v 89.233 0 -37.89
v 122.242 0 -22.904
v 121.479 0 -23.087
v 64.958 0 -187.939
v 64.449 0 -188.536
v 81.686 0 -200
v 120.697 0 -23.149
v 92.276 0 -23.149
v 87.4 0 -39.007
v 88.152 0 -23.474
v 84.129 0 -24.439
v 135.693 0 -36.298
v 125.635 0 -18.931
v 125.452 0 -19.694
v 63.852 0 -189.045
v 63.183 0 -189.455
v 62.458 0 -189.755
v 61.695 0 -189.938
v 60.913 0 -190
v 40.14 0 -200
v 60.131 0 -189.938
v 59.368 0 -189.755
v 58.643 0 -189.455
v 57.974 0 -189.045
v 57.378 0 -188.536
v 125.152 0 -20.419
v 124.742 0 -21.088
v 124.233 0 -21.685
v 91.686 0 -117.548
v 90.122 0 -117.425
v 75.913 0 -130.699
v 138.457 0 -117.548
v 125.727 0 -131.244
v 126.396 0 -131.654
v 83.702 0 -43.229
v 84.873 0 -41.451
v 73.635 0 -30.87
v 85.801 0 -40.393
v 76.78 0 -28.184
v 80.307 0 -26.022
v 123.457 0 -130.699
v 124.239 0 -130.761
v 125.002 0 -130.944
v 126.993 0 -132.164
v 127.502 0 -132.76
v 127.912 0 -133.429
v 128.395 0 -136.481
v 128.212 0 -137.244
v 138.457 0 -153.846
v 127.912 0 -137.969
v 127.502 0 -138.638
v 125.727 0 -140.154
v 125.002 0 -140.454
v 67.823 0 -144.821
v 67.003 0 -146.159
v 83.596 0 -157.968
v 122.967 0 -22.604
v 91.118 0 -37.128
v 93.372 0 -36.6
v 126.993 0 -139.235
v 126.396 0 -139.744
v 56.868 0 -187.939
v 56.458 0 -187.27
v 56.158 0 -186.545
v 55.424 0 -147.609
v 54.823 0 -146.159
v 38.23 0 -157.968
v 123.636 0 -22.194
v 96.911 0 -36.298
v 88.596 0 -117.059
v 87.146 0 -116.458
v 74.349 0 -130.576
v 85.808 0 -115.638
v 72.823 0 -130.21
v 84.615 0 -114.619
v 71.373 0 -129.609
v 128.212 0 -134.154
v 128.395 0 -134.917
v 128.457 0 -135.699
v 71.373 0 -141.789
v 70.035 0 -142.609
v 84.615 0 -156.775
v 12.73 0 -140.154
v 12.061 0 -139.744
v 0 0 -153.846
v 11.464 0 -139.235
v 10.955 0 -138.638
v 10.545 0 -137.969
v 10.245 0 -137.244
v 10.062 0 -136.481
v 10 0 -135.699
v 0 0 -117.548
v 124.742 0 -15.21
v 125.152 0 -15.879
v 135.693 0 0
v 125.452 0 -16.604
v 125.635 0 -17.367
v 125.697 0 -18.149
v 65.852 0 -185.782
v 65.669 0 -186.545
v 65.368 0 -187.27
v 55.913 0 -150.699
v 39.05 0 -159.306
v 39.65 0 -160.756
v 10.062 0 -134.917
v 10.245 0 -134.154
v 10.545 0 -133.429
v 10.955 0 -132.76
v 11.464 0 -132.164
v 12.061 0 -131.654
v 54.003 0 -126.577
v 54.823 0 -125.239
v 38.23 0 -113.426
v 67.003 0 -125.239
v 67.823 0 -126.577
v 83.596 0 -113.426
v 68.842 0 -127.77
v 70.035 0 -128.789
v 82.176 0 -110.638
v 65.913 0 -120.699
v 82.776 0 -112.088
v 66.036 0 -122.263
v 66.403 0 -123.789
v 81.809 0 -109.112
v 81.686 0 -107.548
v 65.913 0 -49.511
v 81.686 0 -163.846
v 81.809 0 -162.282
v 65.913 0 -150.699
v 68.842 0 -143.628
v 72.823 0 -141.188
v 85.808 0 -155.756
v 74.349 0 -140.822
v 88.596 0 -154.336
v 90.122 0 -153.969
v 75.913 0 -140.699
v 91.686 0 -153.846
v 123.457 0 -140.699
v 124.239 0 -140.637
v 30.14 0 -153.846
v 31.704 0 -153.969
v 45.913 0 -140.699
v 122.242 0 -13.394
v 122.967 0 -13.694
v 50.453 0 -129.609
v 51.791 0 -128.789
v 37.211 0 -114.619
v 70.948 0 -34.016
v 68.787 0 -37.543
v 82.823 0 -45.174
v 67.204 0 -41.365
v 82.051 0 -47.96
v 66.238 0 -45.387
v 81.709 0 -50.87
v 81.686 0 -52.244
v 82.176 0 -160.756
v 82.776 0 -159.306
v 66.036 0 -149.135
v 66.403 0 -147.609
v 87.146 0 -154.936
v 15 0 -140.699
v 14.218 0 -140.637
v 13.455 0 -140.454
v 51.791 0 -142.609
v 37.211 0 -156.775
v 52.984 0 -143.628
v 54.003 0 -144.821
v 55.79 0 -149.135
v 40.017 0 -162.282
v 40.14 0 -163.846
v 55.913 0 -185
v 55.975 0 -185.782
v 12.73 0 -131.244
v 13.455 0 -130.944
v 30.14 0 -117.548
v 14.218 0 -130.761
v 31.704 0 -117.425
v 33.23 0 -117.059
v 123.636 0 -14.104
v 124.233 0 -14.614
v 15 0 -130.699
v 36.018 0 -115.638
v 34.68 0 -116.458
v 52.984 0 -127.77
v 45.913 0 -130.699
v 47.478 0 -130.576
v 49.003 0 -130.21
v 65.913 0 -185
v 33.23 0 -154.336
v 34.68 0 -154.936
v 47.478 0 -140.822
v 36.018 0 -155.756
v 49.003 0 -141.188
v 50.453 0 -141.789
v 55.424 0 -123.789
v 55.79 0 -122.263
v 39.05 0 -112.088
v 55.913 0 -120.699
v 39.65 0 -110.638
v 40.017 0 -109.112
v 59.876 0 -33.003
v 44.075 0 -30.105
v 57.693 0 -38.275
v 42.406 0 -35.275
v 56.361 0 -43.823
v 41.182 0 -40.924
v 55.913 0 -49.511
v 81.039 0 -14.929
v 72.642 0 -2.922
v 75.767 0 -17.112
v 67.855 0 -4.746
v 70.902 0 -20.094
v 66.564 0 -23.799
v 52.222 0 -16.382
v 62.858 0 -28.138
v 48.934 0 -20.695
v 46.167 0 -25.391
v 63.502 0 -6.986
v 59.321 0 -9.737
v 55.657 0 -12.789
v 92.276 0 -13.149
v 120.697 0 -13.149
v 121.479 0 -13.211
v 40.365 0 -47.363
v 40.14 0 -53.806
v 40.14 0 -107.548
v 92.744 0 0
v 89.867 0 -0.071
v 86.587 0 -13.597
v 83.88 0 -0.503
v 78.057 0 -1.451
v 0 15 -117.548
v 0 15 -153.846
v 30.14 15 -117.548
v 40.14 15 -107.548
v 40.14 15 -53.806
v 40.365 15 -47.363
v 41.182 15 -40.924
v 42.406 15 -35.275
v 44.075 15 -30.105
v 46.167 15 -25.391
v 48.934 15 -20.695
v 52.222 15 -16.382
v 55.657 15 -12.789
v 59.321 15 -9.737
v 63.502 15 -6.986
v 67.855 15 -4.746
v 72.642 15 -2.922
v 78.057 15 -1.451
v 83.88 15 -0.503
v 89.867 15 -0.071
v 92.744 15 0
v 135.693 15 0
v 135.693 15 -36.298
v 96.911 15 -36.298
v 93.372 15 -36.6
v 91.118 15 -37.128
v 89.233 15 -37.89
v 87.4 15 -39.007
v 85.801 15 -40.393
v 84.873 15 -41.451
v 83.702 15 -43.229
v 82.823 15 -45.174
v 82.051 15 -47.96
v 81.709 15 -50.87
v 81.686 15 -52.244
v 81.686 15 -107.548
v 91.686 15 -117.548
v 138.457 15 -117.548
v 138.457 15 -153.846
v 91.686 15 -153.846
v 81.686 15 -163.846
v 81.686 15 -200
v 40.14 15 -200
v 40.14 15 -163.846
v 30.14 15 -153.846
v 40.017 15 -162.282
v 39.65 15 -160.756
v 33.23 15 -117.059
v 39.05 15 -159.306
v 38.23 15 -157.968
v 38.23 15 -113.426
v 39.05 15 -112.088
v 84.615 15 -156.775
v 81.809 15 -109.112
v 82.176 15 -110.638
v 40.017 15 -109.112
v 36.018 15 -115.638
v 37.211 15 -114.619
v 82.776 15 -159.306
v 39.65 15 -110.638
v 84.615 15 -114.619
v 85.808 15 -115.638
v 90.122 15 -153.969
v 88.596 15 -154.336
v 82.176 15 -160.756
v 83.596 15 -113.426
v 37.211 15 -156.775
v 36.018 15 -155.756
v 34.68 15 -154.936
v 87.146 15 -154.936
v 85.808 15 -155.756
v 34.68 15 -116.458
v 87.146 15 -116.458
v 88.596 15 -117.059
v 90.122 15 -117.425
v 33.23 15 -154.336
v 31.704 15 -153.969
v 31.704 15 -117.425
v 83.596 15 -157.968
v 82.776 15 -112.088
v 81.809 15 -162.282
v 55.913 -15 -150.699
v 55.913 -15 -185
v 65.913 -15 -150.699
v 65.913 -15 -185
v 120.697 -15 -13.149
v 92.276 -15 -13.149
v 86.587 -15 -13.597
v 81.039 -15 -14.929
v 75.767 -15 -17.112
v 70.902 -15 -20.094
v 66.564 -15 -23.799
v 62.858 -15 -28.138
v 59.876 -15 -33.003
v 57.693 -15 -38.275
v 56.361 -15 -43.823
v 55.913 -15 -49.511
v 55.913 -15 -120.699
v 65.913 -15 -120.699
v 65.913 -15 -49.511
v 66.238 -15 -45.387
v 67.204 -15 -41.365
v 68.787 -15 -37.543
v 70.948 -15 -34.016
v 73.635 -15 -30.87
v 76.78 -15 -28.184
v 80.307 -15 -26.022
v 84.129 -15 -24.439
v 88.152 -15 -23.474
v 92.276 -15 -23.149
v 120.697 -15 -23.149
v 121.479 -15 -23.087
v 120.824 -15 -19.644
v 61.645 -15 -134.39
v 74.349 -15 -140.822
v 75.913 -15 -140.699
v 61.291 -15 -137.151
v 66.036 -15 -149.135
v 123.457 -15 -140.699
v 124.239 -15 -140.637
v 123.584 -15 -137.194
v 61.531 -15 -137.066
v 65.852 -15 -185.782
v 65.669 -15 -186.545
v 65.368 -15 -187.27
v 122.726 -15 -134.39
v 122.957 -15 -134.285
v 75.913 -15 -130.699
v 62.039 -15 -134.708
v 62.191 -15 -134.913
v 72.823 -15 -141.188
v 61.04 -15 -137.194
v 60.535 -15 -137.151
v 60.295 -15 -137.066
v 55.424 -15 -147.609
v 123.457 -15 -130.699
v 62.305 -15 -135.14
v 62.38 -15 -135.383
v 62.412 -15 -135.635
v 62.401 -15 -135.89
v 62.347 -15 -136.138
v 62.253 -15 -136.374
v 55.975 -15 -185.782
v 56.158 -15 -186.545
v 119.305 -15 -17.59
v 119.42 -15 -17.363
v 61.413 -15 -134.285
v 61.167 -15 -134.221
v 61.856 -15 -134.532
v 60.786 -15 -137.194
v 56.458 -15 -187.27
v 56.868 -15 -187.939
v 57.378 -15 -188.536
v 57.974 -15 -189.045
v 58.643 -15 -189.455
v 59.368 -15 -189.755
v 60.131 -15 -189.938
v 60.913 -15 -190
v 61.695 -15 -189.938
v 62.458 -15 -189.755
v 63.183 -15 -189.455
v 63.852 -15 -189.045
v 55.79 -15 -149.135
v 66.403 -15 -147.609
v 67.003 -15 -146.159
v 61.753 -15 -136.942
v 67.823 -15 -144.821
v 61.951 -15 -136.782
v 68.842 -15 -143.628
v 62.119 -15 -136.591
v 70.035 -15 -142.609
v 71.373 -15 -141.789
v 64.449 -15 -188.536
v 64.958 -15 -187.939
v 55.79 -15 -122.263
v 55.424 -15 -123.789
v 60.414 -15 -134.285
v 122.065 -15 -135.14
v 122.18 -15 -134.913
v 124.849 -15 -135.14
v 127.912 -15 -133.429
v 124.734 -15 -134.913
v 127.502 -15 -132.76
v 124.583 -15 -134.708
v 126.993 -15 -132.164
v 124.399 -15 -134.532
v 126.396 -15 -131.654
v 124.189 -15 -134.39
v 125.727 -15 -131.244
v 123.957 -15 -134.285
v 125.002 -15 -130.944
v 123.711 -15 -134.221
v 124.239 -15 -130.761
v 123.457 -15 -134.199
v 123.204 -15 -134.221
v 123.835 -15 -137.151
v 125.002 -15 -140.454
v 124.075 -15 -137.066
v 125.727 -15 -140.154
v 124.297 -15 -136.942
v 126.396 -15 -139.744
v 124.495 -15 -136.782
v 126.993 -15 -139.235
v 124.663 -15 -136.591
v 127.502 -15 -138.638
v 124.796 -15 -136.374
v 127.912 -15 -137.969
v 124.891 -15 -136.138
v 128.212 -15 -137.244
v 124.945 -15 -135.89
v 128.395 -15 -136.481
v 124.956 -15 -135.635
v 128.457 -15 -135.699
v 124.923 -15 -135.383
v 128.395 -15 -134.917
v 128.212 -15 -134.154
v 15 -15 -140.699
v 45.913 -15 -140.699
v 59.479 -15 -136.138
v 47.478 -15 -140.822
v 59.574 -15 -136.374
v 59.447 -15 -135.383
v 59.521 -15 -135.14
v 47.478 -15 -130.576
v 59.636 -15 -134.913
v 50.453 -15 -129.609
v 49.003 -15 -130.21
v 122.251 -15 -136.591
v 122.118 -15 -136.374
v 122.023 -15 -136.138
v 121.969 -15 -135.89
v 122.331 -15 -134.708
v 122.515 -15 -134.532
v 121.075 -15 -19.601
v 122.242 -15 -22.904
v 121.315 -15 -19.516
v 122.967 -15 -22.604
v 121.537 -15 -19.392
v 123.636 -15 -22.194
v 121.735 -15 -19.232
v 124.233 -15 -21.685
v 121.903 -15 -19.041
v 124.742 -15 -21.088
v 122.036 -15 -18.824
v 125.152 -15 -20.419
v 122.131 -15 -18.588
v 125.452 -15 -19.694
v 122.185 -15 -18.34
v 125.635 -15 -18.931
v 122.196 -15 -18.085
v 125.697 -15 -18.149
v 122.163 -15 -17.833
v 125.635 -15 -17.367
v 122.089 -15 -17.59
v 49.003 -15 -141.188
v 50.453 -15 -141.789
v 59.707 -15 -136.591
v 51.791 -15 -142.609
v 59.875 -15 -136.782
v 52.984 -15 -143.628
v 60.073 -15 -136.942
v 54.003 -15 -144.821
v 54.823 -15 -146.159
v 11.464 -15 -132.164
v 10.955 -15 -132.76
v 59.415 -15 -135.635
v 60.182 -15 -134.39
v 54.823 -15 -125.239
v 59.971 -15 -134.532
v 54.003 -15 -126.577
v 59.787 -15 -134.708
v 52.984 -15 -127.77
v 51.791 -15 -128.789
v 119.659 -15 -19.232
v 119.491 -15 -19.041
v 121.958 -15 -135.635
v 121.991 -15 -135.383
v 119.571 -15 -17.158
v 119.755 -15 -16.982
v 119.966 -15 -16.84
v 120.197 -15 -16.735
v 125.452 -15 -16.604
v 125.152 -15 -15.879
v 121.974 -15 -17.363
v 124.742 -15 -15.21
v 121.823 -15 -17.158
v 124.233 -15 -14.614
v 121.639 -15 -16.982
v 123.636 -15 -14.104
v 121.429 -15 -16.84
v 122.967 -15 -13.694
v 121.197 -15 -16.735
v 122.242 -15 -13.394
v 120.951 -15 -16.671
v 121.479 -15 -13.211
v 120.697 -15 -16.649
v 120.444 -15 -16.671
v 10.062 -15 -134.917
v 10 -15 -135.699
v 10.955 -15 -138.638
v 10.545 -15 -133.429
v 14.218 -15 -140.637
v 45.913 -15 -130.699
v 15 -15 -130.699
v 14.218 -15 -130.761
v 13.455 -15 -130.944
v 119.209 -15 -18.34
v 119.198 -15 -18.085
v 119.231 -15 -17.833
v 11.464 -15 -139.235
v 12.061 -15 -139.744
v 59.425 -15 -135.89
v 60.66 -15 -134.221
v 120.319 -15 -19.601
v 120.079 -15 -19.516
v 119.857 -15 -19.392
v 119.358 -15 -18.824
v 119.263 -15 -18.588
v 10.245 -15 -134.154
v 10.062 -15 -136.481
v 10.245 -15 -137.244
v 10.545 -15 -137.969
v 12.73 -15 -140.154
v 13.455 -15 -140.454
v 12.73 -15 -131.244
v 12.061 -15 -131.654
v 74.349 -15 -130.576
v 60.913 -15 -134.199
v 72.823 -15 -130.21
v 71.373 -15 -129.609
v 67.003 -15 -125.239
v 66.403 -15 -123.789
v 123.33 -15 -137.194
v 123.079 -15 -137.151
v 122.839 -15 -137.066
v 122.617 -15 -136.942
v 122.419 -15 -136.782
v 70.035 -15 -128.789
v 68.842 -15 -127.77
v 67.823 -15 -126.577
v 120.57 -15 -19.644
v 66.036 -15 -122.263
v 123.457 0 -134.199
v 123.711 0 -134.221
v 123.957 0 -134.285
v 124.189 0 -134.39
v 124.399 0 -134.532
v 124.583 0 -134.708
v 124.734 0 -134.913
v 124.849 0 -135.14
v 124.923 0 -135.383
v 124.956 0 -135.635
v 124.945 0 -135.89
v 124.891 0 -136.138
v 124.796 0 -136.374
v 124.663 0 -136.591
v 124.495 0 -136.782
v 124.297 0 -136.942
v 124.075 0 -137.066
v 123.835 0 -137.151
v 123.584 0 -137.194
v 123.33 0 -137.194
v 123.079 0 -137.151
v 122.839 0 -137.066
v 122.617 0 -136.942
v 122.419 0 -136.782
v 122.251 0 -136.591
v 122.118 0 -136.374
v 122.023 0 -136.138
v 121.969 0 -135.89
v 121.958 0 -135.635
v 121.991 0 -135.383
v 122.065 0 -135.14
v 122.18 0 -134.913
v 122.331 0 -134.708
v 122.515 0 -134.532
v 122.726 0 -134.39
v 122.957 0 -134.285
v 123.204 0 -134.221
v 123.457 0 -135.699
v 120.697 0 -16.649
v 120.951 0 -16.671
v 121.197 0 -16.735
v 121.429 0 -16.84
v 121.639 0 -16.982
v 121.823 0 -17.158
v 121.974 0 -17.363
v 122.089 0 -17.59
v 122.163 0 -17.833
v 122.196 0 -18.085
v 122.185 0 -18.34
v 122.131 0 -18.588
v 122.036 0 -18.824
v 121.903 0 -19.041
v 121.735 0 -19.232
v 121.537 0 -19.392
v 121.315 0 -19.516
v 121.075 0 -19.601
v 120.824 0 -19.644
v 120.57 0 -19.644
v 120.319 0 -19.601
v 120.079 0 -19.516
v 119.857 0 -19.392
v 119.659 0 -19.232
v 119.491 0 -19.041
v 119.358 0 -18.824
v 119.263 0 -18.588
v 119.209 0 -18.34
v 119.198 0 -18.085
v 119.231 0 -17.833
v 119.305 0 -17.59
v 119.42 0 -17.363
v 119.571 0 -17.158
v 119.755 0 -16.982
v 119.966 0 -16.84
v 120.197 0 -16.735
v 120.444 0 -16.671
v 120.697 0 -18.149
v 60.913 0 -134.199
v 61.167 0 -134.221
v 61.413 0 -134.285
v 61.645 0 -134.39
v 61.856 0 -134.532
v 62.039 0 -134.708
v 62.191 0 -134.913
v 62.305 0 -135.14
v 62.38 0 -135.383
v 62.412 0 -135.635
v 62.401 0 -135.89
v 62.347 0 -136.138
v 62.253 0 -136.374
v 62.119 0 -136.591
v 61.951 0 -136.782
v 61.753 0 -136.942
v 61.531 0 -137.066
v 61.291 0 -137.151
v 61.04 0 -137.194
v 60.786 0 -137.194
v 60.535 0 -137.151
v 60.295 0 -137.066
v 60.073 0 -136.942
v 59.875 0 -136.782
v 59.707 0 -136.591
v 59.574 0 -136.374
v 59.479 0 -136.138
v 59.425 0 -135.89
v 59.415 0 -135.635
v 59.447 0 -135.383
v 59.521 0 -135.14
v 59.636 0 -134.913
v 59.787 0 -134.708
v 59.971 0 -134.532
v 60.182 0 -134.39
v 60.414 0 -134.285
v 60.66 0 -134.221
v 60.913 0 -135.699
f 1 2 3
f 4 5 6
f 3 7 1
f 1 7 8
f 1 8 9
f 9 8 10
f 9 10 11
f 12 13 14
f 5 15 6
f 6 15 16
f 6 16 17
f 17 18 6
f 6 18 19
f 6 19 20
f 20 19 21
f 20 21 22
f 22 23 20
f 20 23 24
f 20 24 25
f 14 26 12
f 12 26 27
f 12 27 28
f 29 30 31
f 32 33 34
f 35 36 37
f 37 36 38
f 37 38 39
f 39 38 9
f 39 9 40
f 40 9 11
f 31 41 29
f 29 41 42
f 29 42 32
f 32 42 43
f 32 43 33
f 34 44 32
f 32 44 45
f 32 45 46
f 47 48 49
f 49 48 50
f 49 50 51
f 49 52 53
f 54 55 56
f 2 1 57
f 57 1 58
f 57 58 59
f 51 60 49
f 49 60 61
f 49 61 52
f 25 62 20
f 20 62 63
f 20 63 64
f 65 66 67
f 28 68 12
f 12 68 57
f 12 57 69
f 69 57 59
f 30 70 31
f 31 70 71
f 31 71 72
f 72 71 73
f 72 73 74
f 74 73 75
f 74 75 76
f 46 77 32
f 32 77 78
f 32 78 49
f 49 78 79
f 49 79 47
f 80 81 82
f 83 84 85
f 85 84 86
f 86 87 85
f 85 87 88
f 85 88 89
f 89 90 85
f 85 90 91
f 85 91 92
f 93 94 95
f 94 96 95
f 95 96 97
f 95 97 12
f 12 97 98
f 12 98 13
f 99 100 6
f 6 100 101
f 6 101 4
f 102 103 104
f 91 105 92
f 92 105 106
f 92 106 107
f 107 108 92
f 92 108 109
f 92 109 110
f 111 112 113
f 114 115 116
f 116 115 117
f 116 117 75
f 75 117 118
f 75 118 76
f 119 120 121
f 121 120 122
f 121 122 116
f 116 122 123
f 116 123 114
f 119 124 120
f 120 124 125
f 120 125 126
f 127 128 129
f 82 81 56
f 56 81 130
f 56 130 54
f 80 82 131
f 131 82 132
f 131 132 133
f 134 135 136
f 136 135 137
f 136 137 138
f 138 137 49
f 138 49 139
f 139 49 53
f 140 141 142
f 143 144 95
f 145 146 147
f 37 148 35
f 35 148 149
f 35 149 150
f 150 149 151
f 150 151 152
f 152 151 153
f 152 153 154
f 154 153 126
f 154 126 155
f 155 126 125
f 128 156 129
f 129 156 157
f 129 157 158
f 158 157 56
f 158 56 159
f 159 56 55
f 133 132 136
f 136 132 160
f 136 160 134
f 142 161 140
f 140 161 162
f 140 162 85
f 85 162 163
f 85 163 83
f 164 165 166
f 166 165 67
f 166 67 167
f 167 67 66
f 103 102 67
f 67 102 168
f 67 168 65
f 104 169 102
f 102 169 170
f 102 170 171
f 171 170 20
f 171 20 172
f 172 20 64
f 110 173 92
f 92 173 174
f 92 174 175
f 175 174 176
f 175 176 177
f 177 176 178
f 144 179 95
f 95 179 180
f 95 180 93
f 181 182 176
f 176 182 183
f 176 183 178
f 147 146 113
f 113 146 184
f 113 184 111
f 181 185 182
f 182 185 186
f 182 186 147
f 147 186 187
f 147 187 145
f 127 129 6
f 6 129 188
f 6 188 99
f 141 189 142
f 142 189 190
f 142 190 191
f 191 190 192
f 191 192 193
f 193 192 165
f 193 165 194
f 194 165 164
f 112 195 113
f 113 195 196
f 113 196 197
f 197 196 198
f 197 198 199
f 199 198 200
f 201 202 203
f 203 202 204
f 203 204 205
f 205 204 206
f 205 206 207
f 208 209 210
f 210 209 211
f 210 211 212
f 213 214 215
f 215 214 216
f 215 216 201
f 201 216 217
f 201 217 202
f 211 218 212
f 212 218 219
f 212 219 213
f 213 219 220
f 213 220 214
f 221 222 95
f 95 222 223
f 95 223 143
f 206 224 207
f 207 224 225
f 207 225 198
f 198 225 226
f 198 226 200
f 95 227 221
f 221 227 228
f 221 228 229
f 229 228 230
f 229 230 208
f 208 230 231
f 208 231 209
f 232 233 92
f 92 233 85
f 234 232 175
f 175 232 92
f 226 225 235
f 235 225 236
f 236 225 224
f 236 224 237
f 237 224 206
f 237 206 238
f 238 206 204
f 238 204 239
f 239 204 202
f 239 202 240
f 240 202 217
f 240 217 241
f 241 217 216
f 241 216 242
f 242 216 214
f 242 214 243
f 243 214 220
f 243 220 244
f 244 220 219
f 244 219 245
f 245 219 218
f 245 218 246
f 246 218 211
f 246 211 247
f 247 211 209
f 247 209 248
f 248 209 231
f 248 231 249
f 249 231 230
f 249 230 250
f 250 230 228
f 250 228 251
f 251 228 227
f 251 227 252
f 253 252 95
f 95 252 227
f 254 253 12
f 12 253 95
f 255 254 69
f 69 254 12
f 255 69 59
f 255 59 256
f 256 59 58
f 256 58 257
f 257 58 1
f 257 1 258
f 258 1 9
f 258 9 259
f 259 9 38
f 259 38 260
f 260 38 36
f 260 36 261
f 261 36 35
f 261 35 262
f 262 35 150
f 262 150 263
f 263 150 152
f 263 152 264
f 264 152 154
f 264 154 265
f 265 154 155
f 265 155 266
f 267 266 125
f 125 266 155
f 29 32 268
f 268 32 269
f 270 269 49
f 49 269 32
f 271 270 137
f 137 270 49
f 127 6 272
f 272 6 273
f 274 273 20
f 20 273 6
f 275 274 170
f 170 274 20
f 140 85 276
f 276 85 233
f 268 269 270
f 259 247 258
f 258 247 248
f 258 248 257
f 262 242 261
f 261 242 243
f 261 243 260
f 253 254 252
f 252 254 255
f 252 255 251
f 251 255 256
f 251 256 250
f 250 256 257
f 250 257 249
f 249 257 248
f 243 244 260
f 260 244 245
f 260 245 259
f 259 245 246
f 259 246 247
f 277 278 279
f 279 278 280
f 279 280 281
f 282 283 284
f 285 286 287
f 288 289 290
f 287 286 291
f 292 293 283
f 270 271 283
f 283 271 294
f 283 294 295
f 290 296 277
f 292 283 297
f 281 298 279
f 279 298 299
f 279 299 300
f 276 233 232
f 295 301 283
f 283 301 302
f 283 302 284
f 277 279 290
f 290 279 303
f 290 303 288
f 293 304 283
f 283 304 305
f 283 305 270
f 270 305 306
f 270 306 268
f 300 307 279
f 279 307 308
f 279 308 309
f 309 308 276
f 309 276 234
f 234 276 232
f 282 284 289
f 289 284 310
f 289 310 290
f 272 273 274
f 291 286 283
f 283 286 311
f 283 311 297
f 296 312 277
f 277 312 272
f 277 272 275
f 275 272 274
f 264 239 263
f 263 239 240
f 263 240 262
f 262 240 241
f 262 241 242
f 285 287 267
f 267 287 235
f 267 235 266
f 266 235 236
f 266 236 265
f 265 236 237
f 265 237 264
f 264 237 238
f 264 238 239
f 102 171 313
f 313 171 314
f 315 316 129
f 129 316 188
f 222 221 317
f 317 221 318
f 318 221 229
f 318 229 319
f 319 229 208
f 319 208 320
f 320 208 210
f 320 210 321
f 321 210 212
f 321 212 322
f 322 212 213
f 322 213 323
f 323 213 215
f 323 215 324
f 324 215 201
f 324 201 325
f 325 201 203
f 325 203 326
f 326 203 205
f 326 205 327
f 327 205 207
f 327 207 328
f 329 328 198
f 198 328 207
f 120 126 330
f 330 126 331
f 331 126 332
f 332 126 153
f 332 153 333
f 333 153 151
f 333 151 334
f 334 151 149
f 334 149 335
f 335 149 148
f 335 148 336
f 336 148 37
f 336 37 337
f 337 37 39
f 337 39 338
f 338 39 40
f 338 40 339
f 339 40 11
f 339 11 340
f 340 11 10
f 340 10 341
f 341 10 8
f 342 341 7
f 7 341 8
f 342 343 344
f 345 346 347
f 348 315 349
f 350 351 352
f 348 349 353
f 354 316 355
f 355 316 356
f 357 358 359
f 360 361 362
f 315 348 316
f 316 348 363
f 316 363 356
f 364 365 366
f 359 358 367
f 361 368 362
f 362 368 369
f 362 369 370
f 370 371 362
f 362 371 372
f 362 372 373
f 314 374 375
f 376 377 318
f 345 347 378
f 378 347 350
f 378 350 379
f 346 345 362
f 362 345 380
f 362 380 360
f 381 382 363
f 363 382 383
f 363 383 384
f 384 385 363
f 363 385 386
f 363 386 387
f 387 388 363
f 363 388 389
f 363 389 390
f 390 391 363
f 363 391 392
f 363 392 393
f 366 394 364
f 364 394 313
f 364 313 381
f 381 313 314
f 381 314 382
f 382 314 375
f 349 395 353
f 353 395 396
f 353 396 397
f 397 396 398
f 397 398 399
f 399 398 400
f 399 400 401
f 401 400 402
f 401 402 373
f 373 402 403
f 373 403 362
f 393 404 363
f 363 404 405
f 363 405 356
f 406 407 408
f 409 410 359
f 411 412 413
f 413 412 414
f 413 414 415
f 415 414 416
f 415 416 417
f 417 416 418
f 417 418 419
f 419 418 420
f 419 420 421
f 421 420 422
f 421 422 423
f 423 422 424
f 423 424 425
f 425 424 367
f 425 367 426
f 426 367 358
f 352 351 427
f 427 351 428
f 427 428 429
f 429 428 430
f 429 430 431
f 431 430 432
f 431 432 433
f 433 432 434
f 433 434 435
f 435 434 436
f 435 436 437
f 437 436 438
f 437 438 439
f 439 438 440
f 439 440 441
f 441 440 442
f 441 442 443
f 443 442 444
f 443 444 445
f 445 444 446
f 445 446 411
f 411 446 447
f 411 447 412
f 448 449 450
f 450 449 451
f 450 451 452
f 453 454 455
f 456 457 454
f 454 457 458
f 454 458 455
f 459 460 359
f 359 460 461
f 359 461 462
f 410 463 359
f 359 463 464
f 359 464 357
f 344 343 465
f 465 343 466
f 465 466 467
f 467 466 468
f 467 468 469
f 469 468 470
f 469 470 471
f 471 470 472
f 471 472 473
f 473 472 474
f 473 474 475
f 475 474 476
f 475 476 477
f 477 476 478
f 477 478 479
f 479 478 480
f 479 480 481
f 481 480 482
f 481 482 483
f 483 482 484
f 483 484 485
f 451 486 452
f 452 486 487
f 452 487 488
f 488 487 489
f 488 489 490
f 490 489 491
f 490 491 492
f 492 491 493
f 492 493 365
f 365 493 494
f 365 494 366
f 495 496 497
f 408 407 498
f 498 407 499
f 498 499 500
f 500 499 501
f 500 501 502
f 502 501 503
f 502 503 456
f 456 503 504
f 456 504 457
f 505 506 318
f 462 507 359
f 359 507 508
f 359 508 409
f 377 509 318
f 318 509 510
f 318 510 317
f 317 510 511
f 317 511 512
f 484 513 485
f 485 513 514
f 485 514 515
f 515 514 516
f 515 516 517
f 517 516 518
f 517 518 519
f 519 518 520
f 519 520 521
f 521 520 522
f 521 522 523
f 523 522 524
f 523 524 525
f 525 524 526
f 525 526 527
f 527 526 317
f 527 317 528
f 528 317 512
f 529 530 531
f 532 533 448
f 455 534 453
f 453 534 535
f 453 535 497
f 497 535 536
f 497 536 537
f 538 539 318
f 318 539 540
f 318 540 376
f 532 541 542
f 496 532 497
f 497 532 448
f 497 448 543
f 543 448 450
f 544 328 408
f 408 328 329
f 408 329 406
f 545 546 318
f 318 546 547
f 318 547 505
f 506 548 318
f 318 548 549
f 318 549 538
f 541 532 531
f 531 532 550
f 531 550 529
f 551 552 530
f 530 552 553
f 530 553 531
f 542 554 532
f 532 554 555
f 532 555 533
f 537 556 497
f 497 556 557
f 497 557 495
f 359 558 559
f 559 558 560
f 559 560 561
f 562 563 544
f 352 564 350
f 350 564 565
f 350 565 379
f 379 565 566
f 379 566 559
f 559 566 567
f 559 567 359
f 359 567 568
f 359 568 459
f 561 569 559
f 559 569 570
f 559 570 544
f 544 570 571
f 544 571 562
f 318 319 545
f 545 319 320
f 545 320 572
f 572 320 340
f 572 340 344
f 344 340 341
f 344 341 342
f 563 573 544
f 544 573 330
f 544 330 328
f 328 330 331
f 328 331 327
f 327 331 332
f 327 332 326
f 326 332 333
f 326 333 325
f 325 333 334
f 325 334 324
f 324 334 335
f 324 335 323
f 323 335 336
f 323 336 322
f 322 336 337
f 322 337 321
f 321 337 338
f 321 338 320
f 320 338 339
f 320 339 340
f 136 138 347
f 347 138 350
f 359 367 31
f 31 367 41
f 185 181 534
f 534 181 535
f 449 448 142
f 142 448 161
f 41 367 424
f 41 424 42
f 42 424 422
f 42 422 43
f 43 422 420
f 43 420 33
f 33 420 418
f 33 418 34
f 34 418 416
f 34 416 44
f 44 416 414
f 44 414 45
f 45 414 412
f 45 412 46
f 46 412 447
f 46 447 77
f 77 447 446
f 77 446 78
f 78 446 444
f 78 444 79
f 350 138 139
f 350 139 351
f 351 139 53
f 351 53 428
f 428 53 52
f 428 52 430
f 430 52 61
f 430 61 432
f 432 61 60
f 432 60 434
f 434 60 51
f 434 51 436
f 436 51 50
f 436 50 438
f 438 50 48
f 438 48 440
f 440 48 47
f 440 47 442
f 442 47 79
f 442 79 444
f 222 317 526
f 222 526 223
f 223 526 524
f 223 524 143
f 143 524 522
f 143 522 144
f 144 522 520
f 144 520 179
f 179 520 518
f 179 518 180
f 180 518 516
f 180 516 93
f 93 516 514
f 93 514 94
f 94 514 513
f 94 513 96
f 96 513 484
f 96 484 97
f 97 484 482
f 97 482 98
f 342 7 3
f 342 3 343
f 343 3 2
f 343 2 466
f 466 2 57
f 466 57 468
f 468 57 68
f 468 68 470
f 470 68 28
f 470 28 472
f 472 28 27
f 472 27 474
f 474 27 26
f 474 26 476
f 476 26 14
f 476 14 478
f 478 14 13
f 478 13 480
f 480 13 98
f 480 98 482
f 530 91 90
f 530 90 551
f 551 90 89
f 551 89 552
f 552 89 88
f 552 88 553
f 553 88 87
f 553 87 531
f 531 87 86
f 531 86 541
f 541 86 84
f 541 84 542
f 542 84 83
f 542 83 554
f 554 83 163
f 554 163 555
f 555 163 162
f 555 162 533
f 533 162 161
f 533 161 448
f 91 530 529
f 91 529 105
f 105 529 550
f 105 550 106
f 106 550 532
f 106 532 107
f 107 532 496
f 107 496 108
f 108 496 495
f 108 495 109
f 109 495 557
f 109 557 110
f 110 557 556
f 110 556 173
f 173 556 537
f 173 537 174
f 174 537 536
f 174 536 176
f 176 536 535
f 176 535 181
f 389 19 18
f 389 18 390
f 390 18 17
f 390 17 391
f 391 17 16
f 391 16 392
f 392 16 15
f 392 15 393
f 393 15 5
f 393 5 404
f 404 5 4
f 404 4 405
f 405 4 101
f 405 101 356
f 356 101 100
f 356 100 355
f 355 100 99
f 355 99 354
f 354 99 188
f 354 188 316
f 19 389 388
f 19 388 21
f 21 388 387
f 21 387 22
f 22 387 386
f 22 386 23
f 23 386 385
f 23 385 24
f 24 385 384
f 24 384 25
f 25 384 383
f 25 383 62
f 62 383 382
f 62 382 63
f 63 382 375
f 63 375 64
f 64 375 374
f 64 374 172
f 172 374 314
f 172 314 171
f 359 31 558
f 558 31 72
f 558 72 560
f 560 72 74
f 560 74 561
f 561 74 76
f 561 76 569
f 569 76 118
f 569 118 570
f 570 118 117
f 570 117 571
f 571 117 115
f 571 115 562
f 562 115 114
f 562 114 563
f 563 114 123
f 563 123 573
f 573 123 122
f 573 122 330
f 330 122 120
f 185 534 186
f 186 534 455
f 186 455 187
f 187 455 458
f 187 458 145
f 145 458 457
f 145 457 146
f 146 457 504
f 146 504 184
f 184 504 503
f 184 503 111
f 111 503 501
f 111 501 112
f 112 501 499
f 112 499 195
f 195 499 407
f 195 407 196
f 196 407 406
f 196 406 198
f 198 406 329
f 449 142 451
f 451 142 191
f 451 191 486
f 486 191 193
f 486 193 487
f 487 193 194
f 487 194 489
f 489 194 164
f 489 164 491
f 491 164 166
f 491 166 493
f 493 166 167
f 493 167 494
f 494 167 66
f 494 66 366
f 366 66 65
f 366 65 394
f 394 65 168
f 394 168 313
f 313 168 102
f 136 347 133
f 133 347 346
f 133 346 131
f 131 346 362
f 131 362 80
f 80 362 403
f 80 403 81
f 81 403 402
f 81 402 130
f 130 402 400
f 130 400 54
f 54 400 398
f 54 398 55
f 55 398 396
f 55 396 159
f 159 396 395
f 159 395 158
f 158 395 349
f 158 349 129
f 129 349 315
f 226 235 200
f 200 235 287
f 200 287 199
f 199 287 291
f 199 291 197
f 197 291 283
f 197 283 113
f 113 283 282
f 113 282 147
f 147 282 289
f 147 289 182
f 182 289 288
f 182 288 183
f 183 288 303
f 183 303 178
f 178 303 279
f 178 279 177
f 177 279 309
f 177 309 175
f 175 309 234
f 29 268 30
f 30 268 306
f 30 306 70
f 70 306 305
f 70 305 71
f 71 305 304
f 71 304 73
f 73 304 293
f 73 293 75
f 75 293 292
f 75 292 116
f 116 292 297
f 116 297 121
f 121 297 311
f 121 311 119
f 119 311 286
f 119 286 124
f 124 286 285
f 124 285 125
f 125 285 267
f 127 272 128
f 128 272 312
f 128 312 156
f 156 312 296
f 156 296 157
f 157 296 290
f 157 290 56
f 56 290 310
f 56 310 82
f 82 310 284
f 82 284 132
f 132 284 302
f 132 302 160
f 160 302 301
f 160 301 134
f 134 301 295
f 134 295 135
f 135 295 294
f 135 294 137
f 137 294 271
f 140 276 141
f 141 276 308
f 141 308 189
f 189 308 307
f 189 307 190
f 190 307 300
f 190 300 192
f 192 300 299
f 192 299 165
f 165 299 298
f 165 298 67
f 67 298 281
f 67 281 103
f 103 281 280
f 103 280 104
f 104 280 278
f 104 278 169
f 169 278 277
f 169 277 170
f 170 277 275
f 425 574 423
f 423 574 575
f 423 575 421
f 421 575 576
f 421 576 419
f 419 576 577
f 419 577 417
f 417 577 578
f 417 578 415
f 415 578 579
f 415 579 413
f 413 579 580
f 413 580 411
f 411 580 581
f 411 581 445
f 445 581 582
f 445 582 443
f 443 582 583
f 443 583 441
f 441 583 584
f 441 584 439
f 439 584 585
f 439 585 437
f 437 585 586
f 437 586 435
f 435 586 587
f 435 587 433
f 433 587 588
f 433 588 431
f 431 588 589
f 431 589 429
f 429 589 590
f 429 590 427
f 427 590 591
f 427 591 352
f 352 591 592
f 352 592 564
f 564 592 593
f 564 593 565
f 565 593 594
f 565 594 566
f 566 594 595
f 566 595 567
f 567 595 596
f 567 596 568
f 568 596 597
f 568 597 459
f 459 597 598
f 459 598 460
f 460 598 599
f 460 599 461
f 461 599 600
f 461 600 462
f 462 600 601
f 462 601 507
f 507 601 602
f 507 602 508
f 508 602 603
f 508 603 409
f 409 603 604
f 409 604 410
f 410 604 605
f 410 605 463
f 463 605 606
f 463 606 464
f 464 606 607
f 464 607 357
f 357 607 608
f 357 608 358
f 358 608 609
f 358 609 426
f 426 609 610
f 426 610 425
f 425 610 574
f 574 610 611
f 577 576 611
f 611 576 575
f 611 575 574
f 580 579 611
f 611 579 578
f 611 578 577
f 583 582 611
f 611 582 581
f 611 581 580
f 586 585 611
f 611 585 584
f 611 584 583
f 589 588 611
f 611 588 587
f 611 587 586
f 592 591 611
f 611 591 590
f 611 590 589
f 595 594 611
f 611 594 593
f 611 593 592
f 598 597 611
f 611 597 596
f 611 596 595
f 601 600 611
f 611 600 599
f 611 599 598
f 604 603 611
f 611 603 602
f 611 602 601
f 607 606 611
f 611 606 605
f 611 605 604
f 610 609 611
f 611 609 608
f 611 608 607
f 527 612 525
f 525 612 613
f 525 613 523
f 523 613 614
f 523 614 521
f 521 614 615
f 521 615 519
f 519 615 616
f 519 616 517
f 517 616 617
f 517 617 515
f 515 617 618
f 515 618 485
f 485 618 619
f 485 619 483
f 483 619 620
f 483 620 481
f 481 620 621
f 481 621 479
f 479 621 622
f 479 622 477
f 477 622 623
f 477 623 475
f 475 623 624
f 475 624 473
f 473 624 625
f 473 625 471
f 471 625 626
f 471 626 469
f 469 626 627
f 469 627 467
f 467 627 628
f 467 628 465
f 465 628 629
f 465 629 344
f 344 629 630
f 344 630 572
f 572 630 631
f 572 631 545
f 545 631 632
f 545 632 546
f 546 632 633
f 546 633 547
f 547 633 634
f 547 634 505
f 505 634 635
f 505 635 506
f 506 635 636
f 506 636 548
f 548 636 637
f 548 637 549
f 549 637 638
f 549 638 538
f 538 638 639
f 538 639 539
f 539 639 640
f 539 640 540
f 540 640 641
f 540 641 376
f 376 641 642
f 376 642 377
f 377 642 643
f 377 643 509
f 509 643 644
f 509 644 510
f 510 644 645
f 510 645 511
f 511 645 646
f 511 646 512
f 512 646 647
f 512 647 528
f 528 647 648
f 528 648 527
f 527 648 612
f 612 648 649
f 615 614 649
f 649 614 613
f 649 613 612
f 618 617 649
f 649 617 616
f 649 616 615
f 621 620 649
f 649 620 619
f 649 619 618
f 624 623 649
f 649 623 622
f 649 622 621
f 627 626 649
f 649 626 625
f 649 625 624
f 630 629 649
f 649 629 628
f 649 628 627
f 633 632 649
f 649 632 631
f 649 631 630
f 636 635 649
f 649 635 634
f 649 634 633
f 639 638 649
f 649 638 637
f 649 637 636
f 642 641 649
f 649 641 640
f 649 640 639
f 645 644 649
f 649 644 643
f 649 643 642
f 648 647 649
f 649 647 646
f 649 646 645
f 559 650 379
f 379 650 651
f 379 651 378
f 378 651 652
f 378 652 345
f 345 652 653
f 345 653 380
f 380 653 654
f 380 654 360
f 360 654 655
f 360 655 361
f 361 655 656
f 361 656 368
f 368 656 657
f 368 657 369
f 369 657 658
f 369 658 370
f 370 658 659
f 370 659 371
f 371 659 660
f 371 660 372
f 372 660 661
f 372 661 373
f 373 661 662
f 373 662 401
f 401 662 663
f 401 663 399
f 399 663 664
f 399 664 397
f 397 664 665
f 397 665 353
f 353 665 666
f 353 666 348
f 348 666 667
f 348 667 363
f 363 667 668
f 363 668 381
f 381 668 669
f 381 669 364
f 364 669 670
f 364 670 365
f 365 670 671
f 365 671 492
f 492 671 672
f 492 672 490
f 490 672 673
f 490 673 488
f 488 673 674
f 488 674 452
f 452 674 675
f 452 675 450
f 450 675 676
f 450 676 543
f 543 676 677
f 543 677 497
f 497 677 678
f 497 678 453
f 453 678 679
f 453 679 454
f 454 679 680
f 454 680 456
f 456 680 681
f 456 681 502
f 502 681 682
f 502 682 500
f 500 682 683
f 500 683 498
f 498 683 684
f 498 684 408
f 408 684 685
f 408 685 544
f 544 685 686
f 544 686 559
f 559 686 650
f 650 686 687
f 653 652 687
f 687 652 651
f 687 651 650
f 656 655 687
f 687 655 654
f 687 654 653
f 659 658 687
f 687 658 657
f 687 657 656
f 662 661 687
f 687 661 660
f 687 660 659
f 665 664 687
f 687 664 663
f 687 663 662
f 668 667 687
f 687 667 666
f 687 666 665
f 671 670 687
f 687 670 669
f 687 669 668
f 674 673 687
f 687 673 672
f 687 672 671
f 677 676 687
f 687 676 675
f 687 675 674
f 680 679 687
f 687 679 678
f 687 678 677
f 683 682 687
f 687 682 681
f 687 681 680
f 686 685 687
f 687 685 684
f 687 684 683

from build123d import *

# Parameters (mm, degrees)
EXTRUDE_T_DEPTH        = 15
SKETCH_937_W           = 118.457051
SKETCH_937_H           = 10
EXTRUDE_1_DEPTH        = 15
FILLET_1172_R          = 5
FILLET_1670_R          = 10
FILLET_1882_R          = 10
SKETCH_2094_R          = 1.5
CUT_EXTRUDE_2102_DEPTH = 244.711622867


with BuildPart() as part:
    # Эскиз t → t (new body)
    with BuildSketch(Plane(origin=(0, 0, 0), x_dir=(1, 0, 0), z_dir=(0, 1, 0))):
        with BuildLine():
            Line((0, 153.846153846), (40.13974359, 153.846153846))
            Line((40.13974359, 153.846153846), (40.13974359, 200))
            Line((40.13974359, 200), (81.686217949, 200))
            Line((81.686217949, 200), (81.686217949, 153.846153846))
            Line((81.686217949, 153.846153846), (138.457051282, 153.846153846))
            Line((138.457051282, 153.846153846), (138.457051282, 117.548076923))
            Line((138.457051282, 117.548076923), (81.686217949, 117.548076923))
            Line((81.686217949, 117.548076923), (81.686217949, 52.243589744))
            add(Edge.make_bspline(
                [(81.686217949, 52.243589744), (81.655267201, 49.982948441), (82.085389497, 46.690532241), (83.817672815, 42.793259528), (85.603921155, 40.439849904), (87.847865612, 38.561179508), (91.543310131, 36.686733749), (94.758311571, 36.350436228), (96.910576923, 36.298076923)],
                knots=[0, 0, 0, 0, 0.27148881, 0.391200884, 0.507818538, 0.622673608, 0.739445184, 1, 1, 1, 1], degree=3))
            Line((96.910576923, 36.298076923), (135.692628205, 36.298076923))
            Line((135.692628205, 36.298076923), (135.692628205, 0))
            Line((135.692628205, 0), (92.743910256, 0))
            add(Edge.make_bspline(
                [(92.743910256, 0), (88.849192705, 0.050339472), (83.116455127, 0.365762726), (75.810535171, 1.898538288), (70.797203285, 3.478754574), (66.08408468, 5.454229708), (61.749524849, 7.981859361), (57.691359691, 10.855934374), (54.053352032, 14.254057303), (50.767538722, 18.006446438), (47.908525609, 22.119844392), (45.483732962, 26.56295255), (43.519863299, 31.361705258), (42.002327108, 36.504881897), (40.54984301, 43.989384334), (40.084701759, 49.821816441), (40.13974359, 53.806089744)],
                knots=[0, 0, 0, 0, 0.137098935, 0.200908089, 0.261934675, 0.321669044, 0.380133534, 0.437984068, 0.496125333, 0.554687761, 0.613033376, 0.671858669, 0.73227727, 0.794962552, 0.860057524, 1, 1, 1, 1], degree=3))
            Line((40.13974359, 53.806089744), (40.13974359, 117.548076923))
            Line((40.13974359, 117.548076923), (0, 117.548076923))
            Line((0, 117.548076923), (0, 153.846153846))
        make_face()
    extrude(amount=EXTRUDE_T_DEPTH)

    # Sketch 937 → Вытянуть-Тонкостенный1 (add)
    with BuildSketch(Plane(origin=(0, 0, 0), x_dir=(1, 0, 0), z_dir=(0, 1, 0))):
        with BuildLine():
            Line((55.913237, 190), (55.913237, 49.511337503))
            ThreePointArc((55.913237, 49.511337503), (66.563507798, 23.799309298), (92.275536003, 13.1490385))
            Line((92.275536003, 13.1490385), (125.697051, 13.1490385))
            Line((125.697051, 13.1490385), (125.697051, 23.1490385))
            Line((125.697051, 23.1490385), (92.275536003, 23.1490385))
            ThreePointArc((92.275536003, 23.1490385), (73.63457561, 30.87037711), (65.913237, 49.511337503))
            Line((65.913237, 49.511337503), (65.913237, 190))
            Line((65.913237, 190), (55.913237, 190))
        make_face()
        with Locations((69.2285255, 135.6990385)):
            Rectangle(SKETCH_937_W, SKETCH_937_H)
    extrude(amount=-EXTRUDE_1_DEPTH)

    # Fillet 1172
    fillet_1172_edges = [part.edges().sort_by_distance(p)[0] for p in [
        (128.457051, -7.5, -140.6990385),
        (128.457051, -7.5, -130.6990385),
        (125.697051, -7.5, -23.1490385),
        (125.697051, -7.5, -13.1490385),
        (10, -7.5, -130.6990385),
        (10, -7.5, -140.6990385),
        (55.913237, -7.5, -190),
        (65.913237, -7.5, -190),
    ]]
    fillet(fillet_1172_edges, radius=FILLET_1172_R - 0.0001)  # a hair under: the kernel refuses the full size

    # Fillet 1670
    fillet_1670_edges = [part.edges().sort_by_distance(p)[0] for p in [
        (55.913237, -7.5, -140.6990385),
        (65.913237, -7.5, -130.6990385),
        (65.913237, -7.5, -140.6990385),
        (55.913237, -7.5, -130.6990385),
    ]]
    fillet(fillet_1670_edges, radius=FILLET_1670_R)

    # Fillet 1882
    fillet_1882_edges = [part.edges().sort_by_distance(p)[0] for p in [
        (40.13974359, 7.5, -153.846153846),
        (81.686217949, 7.5, -153.846153846),
        (81.686217949, 7.5, -117.548076923),
        (40.13974359, 7.5, -117.548076923),
    ]]
    fillet(fillet_1882_edges, radius=FILLET_1882_R)

    # Sketch 2094 → Cut-Extrude 2102 (cut, through all)
    with BuildSketch(Plane(origin=(0, 0, 0), x_dir=(1, 0, 0), z_dir=(0, 1, 0))):
        with Locations(Location((60.913237, 135.699039, 0), (0, 0, 270))):
            Circle(SKETCH_2094_R)
        with Locations(Location((120.697051, 18.149039, 0), (0, 0, 270))):
            Circle(SKETCH_2094_R)
        with Locations(Location((123.457051, 135.699039, 0), (0, 0, 270))):
            Circle(SKETCH_2094_R)
    extrude(amount=-CUT_EXTRUDE_2102_DEPTH, mode=Mode.SUBTRACT)


solid = part.part
